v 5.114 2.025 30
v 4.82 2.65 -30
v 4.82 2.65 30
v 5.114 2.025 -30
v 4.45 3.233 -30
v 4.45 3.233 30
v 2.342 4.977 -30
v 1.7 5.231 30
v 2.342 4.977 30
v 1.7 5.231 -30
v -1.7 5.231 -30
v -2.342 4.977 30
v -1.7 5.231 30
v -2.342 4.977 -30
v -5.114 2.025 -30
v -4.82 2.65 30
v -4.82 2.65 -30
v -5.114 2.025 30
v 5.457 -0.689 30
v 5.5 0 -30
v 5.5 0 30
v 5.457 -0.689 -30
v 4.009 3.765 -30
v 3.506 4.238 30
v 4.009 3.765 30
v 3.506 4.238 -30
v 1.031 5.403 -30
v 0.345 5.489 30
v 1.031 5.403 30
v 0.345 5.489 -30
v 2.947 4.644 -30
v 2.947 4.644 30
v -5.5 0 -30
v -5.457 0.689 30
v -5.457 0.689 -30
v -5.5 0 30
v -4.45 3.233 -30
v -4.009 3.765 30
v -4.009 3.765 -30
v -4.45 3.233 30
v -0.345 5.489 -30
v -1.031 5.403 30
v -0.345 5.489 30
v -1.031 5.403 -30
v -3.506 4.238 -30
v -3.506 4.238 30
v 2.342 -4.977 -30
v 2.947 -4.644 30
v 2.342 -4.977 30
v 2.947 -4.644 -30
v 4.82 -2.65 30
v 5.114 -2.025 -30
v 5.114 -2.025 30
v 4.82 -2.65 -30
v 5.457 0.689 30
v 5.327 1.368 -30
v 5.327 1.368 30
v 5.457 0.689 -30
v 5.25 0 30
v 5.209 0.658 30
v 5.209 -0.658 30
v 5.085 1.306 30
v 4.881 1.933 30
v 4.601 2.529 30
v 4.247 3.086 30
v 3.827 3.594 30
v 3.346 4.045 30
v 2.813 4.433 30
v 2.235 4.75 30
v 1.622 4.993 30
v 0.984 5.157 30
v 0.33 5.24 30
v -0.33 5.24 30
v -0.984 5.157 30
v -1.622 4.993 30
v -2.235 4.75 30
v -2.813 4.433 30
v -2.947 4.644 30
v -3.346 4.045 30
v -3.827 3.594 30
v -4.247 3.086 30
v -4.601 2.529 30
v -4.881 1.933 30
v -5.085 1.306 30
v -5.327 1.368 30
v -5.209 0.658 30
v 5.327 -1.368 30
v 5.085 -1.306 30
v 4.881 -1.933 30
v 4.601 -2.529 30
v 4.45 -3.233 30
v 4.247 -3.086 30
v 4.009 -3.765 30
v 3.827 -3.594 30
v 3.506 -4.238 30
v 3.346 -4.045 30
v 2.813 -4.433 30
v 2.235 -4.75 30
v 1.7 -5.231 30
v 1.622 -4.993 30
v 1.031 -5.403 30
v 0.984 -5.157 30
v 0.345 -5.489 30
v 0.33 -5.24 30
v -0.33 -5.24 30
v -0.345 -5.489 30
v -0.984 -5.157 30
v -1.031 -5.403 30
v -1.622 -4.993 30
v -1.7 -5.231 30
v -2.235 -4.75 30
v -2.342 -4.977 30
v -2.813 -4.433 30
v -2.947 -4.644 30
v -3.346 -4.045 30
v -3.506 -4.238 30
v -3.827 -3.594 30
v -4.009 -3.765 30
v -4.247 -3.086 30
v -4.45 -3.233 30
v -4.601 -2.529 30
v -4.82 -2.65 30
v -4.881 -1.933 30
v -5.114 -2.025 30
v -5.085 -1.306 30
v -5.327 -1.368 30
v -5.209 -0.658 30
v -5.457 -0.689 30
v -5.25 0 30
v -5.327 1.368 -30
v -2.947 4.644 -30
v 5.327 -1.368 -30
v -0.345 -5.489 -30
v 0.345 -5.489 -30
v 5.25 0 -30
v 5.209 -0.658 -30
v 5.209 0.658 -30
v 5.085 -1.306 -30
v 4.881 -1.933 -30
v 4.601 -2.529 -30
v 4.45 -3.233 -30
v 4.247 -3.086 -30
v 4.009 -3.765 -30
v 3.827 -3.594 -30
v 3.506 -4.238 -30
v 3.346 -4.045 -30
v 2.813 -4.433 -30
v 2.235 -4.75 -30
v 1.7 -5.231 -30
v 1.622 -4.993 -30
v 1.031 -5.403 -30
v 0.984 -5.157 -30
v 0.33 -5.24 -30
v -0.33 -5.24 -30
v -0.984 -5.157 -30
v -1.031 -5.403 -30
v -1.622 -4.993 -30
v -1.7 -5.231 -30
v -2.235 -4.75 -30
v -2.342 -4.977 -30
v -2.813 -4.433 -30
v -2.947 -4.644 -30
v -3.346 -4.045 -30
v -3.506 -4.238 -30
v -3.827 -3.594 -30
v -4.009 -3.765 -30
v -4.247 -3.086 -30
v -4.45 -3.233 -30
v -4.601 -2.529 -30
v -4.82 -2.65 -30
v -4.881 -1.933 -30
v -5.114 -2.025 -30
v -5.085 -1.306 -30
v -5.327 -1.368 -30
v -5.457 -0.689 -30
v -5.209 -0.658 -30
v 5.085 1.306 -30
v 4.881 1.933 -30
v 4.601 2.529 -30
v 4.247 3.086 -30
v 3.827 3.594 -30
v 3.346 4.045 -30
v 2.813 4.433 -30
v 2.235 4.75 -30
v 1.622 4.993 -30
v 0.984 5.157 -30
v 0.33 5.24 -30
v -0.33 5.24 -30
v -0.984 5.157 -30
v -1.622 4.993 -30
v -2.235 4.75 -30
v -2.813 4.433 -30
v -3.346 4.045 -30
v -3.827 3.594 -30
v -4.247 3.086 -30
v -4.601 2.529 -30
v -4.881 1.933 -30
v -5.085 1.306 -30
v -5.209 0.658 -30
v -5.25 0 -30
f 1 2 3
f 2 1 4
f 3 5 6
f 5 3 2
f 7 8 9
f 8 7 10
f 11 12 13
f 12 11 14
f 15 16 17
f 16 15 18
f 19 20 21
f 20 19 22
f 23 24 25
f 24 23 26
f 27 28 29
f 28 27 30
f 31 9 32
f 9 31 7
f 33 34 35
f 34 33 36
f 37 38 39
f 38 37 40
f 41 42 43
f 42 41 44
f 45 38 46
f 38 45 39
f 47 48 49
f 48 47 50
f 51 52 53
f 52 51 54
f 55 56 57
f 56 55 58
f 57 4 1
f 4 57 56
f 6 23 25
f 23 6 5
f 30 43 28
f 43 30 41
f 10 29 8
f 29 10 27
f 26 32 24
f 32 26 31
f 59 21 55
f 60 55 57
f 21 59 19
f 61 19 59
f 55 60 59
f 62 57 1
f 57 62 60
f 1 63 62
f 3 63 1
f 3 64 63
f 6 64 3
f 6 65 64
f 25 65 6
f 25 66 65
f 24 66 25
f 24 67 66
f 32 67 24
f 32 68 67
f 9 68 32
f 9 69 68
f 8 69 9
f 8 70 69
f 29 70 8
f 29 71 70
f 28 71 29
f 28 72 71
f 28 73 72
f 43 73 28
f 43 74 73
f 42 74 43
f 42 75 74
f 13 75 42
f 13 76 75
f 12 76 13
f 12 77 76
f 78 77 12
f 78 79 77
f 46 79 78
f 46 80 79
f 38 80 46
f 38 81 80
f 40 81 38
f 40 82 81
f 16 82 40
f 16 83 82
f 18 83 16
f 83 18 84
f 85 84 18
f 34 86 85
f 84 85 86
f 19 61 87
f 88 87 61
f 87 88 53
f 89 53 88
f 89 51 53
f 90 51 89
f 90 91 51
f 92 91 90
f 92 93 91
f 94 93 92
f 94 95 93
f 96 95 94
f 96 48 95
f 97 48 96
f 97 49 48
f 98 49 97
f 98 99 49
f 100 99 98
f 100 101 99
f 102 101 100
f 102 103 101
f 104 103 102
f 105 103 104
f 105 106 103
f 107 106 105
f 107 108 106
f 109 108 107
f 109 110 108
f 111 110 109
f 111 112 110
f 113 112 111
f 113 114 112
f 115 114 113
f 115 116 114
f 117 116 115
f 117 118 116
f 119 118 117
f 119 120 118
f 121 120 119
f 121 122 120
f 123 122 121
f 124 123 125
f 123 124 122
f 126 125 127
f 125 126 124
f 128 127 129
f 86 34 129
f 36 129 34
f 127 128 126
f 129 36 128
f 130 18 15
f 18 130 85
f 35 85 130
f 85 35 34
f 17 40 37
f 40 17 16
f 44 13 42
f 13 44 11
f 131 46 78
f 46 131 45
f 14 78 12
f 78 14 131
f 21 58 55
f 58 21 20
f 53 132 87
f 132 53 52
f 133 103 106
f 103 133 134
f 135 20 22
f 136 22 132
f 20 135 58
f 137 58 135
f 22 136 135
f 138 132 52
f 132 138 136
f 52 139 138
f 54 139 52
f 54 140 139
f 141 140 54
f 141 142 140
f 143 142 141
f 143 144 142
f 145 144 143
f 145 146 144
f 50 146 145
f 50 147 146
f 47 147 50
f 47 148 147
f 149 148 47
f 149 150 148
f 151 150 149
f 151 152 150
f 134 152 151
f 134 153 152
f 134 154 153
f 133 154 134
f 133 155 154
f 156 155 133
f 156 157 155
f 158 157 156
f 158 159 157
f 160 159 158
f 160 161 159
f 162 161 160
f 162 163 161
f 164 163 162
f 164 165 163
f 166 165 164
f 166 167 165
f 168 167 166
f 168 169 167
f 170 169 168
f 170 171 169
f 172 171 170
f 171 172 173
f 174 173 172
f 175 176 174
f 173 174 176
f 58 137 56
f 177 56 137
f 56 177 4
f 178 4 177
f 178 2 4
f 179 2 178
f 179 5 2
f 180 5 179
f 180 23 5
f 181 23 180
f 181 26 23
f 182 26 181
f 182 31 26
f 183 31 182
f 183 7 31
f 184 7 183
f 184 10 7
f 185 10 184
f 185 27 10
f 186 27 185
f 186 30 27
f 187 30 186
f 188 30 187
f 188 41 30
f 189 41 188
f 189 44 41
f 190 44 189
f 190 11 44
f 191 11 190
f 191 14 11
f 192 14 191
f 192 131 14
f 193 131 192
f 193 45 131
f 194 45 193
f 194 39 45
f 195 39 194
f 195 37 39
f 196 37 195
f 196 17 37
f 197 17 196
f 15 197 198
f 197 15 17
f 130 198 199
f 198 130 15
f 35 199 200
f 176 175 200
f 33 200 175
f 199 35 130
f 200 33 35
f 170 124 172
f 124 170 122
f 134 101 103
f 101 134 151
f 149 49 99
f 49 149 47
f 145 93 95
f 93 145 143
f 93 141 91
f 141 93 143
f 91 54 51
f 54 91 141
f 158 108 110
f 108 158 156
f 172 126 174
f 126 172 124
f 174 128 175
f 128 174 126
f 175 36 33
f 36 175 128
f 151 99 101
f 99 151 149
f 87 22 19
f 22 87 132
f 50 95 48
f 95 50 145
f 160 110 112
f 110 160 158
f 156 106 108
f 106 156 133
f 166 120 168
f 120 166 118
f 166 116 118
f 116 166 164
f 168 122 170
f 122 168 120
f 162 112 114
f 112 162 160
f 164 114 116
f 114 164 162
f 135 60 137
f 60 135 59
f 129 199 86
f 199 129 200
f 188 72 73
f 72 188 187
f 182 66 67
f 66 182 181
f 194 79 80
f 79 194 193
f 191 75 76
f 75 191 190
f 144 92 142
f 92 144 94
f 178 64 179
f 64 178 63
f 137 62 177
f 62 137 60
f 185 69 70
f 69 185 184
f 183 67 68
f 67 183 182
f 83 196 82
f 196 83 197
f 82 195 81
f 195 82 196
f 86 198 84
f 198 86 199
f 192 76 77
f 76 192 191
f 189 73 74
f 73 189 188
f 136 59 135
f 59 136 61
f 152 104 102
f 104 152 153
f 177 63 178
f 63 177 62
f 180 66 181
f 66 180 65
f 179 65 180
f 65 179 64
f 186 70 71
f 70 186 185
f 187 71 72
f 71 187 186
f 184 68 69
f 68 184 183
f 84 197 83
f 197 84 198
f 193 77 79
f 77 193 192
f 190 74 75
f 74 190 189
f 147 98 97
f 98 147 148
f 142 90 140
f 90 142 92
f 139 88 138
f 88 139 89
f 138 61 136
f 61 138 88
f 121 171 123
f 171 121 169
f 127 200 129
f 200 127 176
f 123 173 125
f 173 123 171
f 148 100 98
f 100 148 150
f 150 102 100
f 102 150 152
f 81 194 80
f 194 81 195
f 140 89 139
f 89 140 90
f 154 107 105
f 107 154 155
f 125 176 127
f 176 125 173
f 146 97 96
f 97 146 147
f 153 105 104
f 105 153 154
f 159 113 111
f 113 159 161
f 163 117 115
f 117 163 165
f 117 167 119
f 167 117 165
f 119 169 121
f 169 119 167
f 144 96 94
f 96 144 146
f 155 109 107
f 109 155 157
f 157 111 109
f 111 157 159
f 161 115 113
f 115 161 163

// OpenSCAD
$fn = 50;


difference() {
	union() {
		translate(v = [0, 0, -30.0000000000]) {
			cylinder(h = 60, r = 5.5000000000);
		}
	}
	union() {
		translate(v = [0, 0, -100.0000000000]) {
			cylinder(h = 200, r = 5.2500000000);
		}
	}
}
